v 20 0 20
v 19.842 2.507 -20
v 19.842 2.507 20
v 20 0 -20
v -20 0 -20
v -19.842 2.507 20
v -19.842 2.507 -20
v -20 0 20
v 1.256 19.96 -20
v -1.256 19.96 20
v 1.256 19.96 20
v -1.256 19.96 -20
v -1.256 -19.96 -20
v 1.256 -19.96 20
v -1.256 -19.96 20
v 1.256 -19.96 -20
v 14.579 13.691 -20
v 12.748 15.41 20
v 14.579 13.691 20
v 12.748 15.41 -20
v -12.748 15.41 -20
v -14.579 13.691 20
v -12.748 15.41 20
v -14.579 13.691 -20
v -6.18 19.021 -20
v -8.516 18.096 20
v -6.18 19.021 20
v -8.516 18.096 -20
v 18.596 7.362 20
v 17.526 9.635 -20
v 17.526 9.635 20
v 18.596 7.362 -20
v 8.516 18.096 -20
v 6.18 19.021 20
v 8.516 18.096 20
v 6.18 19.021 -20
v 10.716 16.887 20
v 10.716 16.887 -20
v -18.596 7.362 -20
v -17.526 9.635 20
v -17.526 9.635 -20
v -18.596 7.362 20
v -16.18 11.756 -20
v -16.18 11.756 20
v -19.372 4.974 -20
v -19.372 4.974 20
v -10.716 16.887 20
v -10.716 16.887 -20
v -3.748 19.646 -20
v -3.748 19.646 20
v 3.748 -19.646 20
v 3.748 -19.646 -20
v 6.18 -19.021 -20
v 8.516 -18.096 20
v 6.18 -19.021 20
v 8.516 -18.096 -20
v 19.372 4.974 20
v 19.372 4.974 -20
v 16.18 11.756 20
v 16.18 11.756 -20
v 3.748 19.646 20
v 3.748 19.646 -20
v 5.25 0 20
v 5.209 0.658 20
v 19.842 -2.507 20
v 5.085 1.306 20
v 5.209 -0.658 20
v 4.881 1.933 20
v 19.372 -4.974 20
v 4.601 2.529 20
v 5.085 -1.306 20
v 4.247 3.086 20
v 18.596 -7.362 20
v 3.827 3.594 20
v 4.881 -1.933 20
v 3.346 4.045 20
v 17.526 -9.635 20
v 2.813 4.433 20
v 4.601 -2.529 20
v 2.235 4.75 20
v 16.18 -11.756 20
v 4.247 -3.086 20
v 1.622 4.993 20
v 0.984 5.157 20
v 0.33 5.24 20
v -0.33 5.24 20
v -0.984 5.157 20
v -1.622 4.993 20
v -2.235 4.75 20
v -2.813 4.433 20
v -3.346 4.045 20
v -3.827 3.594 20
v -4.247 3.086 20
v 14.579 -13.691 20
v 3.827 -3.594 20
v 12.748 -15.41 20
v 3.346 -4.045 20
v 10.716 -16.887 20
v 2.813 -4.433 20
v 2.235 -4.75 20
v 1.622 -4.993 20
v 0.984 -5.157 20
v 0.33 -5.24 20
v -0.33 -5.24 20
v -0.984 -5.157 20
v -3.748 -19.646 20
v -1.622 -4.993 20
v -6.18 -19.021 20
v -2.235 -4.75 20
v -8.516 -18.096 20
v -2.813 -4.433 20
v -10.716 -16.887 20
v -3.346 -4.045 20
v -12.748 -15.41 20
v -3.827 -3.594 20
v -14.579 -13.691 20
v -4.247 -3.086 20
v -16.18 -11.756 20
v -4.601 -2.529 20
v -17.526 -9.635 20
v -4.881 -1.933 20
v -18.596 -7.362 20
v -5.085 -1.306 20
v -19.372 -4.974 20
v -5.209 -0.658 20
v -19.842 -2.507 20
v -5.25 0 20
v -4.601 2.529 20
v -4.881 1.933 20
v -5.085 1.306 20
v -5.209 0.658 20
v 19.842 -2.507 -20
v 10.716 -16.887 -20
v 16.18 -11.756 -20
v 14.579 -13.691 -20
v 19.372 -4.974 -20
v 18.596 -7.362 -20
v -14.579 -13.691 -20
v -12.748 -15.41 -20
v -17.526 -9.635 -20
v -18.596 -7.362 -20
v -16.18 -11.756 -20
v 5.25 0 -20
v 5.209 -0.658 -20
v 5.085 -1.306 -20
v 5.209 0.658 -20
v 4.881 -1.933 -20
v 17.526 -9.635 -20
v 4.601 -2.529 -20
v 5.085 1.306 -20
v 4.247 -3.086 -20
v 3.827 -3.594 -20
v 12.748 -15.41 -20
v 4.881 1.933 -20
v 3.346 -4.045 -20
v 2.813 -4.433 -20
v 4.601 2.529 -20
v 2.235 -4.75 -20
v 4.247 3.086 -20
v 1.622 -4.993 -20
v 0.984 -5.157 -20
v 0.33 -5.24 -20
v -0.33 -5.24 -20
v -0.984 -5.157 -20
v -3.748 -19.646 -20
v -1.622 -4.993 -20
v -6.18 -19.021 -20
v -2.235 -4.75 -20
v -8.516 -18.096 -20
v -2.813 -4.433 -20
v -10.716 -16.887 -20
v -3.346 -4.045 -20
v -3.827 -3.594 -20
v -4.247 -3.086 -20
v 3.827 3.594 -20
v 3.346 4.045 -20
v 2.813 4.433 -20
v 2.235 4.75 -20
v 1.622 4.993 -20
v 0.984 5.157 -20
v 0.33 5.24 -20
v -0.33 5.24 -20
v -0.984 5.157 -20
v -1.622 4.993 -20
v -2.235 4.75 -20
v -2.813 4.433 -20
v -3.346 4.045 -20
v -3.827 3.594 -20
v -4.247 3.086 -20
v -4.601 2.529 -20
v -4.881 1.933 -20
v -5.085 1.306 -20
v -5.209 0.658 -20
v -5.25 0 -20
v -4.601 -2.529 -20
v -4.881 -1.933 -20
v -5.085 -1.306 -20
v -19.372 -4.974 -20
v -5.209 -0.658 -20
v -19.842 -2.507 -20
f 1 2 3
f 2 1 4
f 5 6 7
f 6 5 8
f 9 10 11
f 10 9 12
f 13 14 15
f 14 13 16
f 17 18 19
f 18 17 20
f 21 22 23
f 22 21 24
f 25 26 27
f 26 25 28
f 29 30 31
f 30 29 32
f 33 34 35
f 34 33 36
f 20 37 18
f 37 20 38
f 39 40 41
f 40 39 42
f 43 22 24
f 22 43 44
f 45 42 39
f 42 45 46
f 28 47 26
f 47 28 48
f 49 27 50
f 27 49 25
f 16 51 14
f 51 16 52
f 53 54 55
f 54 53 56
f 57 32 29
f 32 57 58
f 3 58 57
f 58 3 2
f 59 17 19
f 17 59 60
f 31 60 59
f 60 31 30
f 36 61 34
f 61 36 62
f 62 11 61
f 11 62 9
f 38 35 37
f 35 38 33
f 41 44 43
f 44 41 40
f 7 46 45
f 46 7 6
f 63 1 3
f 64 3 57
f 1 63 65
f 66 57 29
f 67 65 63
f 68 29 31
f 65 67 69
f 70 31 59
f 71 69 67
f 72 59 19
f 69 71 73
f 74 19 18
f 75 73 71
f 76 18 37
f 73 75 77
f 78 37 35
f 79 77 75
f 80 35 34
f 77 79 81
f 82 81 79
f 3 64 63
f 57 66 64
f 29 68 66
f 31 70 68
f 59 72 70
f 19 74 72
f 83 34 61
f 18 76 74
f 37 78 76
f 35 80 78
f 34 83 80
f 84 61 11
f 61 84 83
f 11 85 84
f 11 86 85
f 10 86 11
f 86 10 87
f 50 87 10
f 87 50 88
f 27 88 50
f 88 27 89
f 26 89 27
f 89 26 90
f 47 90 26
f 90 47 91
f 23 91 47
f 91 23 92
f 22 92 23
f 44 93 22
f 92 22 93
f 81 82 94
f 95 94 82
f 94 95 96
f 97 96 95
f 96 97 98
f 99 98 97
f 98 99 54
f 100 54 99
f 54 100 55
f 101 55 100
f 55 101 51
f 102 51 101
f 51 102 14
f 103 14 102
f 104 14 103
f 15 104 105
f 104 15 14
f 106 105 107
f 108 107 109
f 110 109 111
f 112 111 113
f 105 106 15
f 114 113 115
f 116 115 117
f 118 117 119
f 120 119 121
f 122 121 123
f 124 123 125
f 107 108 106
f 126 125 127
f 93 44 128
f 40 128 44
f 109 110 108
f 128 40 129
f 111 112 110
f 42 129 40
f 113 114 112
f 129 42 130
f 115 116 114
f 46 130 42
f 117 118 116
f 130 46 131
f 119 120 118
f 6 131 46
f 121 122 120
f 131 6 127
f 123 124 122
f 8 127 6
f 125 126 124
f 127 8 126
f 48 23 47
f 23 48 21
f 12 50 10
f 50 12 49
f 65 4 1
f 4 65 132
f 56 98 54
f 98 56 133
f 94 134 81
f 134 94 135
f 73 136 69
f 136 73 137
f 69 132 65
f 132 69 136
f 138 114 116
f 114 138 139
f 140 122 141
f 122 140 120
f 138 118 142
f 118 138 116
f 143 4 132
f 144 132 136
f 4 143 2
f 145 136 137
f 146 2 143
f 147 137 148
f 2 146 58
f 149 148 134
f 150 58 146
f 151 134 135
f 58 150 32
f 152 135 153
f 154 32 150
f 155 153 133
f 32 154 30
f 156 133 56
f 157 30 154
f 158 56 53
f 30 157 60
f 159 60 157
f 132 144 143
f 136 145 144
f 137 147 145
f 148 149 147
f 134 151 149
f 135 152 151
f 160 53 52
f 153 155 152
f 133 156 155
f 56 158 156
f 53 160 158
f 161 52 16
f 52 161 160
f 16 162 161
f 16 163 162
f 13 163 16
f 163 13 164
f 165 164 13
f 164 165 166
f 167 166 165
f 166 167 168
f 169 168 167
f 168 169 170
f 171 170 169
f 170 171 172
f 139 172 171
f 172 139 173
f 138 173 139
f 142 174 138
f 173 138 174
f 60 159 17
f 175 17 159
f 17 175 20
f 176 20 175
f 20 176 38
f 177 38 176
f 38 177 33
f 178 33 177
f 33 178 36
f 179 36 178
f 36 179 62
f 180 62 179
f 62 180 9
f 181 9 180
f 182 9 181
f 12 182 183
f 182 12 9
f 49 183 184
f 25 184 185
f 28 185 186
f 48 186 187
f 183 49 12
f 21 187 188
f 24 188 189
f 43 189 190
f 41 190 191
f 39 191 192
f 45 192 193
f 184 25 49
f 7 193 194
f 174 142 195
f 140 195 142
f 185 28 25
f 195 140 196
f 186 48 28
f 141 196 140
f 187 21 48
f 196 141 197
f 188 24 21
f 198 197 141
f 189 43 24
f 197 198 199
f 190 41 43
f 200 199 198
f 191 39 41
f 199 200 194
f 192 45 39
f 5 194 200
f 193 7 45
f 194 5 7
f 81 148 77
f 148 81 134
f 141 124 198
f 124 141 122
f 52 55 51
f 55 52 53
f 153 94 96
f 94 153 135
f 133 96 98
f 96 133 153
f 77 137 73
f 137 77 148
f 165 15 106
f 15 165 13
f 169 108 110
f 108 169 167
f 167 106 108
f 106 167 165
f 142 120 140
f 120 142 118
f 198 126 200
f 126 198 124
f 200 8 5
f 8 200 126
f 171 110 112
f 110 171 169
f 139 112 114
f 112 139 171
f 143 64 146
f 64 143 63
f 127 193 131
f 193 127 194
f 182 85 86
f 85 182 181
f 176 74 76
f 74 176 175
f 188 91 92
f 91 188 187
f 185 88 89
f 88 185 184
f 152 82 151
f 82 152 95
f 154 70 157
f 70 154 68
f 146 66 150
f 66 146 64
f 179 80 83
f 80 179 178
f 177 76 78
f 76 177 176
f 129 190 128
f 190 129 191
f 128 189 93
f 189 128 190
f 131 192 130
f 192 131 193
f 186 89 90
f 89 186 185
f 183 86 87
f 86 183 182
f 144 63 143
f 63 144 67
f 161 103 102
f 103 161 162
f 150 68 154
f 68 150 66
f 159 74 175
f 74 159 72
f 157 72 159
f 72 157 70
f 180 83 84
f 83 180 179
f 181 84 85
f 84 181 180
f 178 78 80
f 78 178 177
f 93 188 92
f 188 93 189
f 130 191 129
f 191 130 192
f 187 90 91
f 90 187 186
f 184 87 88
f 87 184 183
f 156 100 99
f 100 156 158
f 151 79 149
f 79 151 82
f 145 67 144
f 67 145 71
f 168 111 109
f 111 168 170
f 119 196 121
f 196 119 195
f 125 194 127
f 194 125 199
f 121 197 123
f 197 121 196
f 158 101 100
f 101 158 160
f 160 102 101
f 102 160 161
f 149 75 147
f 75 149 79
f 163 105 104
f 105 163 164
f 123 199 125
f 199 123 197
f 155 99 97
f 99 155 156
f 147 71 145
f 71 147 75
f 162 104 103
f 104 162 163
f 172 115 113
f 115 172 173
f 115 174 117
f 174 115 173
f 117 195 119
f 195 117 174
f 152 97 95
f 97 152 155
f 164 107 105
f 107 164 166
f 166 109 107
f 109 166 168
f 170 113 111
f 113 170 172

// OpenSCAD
$fn = 50;


difference() {
	union() {
		translate(v = [0, 0, -20.0000000000]) {
			cylinder(h = 40, r = 20.0000000000);
		}
	}
	union() {
		translate(v = [0, 0, -100.0000000000]) {
			cylinder(h = 200, r = 5.2500000000);
		}
	}
}
